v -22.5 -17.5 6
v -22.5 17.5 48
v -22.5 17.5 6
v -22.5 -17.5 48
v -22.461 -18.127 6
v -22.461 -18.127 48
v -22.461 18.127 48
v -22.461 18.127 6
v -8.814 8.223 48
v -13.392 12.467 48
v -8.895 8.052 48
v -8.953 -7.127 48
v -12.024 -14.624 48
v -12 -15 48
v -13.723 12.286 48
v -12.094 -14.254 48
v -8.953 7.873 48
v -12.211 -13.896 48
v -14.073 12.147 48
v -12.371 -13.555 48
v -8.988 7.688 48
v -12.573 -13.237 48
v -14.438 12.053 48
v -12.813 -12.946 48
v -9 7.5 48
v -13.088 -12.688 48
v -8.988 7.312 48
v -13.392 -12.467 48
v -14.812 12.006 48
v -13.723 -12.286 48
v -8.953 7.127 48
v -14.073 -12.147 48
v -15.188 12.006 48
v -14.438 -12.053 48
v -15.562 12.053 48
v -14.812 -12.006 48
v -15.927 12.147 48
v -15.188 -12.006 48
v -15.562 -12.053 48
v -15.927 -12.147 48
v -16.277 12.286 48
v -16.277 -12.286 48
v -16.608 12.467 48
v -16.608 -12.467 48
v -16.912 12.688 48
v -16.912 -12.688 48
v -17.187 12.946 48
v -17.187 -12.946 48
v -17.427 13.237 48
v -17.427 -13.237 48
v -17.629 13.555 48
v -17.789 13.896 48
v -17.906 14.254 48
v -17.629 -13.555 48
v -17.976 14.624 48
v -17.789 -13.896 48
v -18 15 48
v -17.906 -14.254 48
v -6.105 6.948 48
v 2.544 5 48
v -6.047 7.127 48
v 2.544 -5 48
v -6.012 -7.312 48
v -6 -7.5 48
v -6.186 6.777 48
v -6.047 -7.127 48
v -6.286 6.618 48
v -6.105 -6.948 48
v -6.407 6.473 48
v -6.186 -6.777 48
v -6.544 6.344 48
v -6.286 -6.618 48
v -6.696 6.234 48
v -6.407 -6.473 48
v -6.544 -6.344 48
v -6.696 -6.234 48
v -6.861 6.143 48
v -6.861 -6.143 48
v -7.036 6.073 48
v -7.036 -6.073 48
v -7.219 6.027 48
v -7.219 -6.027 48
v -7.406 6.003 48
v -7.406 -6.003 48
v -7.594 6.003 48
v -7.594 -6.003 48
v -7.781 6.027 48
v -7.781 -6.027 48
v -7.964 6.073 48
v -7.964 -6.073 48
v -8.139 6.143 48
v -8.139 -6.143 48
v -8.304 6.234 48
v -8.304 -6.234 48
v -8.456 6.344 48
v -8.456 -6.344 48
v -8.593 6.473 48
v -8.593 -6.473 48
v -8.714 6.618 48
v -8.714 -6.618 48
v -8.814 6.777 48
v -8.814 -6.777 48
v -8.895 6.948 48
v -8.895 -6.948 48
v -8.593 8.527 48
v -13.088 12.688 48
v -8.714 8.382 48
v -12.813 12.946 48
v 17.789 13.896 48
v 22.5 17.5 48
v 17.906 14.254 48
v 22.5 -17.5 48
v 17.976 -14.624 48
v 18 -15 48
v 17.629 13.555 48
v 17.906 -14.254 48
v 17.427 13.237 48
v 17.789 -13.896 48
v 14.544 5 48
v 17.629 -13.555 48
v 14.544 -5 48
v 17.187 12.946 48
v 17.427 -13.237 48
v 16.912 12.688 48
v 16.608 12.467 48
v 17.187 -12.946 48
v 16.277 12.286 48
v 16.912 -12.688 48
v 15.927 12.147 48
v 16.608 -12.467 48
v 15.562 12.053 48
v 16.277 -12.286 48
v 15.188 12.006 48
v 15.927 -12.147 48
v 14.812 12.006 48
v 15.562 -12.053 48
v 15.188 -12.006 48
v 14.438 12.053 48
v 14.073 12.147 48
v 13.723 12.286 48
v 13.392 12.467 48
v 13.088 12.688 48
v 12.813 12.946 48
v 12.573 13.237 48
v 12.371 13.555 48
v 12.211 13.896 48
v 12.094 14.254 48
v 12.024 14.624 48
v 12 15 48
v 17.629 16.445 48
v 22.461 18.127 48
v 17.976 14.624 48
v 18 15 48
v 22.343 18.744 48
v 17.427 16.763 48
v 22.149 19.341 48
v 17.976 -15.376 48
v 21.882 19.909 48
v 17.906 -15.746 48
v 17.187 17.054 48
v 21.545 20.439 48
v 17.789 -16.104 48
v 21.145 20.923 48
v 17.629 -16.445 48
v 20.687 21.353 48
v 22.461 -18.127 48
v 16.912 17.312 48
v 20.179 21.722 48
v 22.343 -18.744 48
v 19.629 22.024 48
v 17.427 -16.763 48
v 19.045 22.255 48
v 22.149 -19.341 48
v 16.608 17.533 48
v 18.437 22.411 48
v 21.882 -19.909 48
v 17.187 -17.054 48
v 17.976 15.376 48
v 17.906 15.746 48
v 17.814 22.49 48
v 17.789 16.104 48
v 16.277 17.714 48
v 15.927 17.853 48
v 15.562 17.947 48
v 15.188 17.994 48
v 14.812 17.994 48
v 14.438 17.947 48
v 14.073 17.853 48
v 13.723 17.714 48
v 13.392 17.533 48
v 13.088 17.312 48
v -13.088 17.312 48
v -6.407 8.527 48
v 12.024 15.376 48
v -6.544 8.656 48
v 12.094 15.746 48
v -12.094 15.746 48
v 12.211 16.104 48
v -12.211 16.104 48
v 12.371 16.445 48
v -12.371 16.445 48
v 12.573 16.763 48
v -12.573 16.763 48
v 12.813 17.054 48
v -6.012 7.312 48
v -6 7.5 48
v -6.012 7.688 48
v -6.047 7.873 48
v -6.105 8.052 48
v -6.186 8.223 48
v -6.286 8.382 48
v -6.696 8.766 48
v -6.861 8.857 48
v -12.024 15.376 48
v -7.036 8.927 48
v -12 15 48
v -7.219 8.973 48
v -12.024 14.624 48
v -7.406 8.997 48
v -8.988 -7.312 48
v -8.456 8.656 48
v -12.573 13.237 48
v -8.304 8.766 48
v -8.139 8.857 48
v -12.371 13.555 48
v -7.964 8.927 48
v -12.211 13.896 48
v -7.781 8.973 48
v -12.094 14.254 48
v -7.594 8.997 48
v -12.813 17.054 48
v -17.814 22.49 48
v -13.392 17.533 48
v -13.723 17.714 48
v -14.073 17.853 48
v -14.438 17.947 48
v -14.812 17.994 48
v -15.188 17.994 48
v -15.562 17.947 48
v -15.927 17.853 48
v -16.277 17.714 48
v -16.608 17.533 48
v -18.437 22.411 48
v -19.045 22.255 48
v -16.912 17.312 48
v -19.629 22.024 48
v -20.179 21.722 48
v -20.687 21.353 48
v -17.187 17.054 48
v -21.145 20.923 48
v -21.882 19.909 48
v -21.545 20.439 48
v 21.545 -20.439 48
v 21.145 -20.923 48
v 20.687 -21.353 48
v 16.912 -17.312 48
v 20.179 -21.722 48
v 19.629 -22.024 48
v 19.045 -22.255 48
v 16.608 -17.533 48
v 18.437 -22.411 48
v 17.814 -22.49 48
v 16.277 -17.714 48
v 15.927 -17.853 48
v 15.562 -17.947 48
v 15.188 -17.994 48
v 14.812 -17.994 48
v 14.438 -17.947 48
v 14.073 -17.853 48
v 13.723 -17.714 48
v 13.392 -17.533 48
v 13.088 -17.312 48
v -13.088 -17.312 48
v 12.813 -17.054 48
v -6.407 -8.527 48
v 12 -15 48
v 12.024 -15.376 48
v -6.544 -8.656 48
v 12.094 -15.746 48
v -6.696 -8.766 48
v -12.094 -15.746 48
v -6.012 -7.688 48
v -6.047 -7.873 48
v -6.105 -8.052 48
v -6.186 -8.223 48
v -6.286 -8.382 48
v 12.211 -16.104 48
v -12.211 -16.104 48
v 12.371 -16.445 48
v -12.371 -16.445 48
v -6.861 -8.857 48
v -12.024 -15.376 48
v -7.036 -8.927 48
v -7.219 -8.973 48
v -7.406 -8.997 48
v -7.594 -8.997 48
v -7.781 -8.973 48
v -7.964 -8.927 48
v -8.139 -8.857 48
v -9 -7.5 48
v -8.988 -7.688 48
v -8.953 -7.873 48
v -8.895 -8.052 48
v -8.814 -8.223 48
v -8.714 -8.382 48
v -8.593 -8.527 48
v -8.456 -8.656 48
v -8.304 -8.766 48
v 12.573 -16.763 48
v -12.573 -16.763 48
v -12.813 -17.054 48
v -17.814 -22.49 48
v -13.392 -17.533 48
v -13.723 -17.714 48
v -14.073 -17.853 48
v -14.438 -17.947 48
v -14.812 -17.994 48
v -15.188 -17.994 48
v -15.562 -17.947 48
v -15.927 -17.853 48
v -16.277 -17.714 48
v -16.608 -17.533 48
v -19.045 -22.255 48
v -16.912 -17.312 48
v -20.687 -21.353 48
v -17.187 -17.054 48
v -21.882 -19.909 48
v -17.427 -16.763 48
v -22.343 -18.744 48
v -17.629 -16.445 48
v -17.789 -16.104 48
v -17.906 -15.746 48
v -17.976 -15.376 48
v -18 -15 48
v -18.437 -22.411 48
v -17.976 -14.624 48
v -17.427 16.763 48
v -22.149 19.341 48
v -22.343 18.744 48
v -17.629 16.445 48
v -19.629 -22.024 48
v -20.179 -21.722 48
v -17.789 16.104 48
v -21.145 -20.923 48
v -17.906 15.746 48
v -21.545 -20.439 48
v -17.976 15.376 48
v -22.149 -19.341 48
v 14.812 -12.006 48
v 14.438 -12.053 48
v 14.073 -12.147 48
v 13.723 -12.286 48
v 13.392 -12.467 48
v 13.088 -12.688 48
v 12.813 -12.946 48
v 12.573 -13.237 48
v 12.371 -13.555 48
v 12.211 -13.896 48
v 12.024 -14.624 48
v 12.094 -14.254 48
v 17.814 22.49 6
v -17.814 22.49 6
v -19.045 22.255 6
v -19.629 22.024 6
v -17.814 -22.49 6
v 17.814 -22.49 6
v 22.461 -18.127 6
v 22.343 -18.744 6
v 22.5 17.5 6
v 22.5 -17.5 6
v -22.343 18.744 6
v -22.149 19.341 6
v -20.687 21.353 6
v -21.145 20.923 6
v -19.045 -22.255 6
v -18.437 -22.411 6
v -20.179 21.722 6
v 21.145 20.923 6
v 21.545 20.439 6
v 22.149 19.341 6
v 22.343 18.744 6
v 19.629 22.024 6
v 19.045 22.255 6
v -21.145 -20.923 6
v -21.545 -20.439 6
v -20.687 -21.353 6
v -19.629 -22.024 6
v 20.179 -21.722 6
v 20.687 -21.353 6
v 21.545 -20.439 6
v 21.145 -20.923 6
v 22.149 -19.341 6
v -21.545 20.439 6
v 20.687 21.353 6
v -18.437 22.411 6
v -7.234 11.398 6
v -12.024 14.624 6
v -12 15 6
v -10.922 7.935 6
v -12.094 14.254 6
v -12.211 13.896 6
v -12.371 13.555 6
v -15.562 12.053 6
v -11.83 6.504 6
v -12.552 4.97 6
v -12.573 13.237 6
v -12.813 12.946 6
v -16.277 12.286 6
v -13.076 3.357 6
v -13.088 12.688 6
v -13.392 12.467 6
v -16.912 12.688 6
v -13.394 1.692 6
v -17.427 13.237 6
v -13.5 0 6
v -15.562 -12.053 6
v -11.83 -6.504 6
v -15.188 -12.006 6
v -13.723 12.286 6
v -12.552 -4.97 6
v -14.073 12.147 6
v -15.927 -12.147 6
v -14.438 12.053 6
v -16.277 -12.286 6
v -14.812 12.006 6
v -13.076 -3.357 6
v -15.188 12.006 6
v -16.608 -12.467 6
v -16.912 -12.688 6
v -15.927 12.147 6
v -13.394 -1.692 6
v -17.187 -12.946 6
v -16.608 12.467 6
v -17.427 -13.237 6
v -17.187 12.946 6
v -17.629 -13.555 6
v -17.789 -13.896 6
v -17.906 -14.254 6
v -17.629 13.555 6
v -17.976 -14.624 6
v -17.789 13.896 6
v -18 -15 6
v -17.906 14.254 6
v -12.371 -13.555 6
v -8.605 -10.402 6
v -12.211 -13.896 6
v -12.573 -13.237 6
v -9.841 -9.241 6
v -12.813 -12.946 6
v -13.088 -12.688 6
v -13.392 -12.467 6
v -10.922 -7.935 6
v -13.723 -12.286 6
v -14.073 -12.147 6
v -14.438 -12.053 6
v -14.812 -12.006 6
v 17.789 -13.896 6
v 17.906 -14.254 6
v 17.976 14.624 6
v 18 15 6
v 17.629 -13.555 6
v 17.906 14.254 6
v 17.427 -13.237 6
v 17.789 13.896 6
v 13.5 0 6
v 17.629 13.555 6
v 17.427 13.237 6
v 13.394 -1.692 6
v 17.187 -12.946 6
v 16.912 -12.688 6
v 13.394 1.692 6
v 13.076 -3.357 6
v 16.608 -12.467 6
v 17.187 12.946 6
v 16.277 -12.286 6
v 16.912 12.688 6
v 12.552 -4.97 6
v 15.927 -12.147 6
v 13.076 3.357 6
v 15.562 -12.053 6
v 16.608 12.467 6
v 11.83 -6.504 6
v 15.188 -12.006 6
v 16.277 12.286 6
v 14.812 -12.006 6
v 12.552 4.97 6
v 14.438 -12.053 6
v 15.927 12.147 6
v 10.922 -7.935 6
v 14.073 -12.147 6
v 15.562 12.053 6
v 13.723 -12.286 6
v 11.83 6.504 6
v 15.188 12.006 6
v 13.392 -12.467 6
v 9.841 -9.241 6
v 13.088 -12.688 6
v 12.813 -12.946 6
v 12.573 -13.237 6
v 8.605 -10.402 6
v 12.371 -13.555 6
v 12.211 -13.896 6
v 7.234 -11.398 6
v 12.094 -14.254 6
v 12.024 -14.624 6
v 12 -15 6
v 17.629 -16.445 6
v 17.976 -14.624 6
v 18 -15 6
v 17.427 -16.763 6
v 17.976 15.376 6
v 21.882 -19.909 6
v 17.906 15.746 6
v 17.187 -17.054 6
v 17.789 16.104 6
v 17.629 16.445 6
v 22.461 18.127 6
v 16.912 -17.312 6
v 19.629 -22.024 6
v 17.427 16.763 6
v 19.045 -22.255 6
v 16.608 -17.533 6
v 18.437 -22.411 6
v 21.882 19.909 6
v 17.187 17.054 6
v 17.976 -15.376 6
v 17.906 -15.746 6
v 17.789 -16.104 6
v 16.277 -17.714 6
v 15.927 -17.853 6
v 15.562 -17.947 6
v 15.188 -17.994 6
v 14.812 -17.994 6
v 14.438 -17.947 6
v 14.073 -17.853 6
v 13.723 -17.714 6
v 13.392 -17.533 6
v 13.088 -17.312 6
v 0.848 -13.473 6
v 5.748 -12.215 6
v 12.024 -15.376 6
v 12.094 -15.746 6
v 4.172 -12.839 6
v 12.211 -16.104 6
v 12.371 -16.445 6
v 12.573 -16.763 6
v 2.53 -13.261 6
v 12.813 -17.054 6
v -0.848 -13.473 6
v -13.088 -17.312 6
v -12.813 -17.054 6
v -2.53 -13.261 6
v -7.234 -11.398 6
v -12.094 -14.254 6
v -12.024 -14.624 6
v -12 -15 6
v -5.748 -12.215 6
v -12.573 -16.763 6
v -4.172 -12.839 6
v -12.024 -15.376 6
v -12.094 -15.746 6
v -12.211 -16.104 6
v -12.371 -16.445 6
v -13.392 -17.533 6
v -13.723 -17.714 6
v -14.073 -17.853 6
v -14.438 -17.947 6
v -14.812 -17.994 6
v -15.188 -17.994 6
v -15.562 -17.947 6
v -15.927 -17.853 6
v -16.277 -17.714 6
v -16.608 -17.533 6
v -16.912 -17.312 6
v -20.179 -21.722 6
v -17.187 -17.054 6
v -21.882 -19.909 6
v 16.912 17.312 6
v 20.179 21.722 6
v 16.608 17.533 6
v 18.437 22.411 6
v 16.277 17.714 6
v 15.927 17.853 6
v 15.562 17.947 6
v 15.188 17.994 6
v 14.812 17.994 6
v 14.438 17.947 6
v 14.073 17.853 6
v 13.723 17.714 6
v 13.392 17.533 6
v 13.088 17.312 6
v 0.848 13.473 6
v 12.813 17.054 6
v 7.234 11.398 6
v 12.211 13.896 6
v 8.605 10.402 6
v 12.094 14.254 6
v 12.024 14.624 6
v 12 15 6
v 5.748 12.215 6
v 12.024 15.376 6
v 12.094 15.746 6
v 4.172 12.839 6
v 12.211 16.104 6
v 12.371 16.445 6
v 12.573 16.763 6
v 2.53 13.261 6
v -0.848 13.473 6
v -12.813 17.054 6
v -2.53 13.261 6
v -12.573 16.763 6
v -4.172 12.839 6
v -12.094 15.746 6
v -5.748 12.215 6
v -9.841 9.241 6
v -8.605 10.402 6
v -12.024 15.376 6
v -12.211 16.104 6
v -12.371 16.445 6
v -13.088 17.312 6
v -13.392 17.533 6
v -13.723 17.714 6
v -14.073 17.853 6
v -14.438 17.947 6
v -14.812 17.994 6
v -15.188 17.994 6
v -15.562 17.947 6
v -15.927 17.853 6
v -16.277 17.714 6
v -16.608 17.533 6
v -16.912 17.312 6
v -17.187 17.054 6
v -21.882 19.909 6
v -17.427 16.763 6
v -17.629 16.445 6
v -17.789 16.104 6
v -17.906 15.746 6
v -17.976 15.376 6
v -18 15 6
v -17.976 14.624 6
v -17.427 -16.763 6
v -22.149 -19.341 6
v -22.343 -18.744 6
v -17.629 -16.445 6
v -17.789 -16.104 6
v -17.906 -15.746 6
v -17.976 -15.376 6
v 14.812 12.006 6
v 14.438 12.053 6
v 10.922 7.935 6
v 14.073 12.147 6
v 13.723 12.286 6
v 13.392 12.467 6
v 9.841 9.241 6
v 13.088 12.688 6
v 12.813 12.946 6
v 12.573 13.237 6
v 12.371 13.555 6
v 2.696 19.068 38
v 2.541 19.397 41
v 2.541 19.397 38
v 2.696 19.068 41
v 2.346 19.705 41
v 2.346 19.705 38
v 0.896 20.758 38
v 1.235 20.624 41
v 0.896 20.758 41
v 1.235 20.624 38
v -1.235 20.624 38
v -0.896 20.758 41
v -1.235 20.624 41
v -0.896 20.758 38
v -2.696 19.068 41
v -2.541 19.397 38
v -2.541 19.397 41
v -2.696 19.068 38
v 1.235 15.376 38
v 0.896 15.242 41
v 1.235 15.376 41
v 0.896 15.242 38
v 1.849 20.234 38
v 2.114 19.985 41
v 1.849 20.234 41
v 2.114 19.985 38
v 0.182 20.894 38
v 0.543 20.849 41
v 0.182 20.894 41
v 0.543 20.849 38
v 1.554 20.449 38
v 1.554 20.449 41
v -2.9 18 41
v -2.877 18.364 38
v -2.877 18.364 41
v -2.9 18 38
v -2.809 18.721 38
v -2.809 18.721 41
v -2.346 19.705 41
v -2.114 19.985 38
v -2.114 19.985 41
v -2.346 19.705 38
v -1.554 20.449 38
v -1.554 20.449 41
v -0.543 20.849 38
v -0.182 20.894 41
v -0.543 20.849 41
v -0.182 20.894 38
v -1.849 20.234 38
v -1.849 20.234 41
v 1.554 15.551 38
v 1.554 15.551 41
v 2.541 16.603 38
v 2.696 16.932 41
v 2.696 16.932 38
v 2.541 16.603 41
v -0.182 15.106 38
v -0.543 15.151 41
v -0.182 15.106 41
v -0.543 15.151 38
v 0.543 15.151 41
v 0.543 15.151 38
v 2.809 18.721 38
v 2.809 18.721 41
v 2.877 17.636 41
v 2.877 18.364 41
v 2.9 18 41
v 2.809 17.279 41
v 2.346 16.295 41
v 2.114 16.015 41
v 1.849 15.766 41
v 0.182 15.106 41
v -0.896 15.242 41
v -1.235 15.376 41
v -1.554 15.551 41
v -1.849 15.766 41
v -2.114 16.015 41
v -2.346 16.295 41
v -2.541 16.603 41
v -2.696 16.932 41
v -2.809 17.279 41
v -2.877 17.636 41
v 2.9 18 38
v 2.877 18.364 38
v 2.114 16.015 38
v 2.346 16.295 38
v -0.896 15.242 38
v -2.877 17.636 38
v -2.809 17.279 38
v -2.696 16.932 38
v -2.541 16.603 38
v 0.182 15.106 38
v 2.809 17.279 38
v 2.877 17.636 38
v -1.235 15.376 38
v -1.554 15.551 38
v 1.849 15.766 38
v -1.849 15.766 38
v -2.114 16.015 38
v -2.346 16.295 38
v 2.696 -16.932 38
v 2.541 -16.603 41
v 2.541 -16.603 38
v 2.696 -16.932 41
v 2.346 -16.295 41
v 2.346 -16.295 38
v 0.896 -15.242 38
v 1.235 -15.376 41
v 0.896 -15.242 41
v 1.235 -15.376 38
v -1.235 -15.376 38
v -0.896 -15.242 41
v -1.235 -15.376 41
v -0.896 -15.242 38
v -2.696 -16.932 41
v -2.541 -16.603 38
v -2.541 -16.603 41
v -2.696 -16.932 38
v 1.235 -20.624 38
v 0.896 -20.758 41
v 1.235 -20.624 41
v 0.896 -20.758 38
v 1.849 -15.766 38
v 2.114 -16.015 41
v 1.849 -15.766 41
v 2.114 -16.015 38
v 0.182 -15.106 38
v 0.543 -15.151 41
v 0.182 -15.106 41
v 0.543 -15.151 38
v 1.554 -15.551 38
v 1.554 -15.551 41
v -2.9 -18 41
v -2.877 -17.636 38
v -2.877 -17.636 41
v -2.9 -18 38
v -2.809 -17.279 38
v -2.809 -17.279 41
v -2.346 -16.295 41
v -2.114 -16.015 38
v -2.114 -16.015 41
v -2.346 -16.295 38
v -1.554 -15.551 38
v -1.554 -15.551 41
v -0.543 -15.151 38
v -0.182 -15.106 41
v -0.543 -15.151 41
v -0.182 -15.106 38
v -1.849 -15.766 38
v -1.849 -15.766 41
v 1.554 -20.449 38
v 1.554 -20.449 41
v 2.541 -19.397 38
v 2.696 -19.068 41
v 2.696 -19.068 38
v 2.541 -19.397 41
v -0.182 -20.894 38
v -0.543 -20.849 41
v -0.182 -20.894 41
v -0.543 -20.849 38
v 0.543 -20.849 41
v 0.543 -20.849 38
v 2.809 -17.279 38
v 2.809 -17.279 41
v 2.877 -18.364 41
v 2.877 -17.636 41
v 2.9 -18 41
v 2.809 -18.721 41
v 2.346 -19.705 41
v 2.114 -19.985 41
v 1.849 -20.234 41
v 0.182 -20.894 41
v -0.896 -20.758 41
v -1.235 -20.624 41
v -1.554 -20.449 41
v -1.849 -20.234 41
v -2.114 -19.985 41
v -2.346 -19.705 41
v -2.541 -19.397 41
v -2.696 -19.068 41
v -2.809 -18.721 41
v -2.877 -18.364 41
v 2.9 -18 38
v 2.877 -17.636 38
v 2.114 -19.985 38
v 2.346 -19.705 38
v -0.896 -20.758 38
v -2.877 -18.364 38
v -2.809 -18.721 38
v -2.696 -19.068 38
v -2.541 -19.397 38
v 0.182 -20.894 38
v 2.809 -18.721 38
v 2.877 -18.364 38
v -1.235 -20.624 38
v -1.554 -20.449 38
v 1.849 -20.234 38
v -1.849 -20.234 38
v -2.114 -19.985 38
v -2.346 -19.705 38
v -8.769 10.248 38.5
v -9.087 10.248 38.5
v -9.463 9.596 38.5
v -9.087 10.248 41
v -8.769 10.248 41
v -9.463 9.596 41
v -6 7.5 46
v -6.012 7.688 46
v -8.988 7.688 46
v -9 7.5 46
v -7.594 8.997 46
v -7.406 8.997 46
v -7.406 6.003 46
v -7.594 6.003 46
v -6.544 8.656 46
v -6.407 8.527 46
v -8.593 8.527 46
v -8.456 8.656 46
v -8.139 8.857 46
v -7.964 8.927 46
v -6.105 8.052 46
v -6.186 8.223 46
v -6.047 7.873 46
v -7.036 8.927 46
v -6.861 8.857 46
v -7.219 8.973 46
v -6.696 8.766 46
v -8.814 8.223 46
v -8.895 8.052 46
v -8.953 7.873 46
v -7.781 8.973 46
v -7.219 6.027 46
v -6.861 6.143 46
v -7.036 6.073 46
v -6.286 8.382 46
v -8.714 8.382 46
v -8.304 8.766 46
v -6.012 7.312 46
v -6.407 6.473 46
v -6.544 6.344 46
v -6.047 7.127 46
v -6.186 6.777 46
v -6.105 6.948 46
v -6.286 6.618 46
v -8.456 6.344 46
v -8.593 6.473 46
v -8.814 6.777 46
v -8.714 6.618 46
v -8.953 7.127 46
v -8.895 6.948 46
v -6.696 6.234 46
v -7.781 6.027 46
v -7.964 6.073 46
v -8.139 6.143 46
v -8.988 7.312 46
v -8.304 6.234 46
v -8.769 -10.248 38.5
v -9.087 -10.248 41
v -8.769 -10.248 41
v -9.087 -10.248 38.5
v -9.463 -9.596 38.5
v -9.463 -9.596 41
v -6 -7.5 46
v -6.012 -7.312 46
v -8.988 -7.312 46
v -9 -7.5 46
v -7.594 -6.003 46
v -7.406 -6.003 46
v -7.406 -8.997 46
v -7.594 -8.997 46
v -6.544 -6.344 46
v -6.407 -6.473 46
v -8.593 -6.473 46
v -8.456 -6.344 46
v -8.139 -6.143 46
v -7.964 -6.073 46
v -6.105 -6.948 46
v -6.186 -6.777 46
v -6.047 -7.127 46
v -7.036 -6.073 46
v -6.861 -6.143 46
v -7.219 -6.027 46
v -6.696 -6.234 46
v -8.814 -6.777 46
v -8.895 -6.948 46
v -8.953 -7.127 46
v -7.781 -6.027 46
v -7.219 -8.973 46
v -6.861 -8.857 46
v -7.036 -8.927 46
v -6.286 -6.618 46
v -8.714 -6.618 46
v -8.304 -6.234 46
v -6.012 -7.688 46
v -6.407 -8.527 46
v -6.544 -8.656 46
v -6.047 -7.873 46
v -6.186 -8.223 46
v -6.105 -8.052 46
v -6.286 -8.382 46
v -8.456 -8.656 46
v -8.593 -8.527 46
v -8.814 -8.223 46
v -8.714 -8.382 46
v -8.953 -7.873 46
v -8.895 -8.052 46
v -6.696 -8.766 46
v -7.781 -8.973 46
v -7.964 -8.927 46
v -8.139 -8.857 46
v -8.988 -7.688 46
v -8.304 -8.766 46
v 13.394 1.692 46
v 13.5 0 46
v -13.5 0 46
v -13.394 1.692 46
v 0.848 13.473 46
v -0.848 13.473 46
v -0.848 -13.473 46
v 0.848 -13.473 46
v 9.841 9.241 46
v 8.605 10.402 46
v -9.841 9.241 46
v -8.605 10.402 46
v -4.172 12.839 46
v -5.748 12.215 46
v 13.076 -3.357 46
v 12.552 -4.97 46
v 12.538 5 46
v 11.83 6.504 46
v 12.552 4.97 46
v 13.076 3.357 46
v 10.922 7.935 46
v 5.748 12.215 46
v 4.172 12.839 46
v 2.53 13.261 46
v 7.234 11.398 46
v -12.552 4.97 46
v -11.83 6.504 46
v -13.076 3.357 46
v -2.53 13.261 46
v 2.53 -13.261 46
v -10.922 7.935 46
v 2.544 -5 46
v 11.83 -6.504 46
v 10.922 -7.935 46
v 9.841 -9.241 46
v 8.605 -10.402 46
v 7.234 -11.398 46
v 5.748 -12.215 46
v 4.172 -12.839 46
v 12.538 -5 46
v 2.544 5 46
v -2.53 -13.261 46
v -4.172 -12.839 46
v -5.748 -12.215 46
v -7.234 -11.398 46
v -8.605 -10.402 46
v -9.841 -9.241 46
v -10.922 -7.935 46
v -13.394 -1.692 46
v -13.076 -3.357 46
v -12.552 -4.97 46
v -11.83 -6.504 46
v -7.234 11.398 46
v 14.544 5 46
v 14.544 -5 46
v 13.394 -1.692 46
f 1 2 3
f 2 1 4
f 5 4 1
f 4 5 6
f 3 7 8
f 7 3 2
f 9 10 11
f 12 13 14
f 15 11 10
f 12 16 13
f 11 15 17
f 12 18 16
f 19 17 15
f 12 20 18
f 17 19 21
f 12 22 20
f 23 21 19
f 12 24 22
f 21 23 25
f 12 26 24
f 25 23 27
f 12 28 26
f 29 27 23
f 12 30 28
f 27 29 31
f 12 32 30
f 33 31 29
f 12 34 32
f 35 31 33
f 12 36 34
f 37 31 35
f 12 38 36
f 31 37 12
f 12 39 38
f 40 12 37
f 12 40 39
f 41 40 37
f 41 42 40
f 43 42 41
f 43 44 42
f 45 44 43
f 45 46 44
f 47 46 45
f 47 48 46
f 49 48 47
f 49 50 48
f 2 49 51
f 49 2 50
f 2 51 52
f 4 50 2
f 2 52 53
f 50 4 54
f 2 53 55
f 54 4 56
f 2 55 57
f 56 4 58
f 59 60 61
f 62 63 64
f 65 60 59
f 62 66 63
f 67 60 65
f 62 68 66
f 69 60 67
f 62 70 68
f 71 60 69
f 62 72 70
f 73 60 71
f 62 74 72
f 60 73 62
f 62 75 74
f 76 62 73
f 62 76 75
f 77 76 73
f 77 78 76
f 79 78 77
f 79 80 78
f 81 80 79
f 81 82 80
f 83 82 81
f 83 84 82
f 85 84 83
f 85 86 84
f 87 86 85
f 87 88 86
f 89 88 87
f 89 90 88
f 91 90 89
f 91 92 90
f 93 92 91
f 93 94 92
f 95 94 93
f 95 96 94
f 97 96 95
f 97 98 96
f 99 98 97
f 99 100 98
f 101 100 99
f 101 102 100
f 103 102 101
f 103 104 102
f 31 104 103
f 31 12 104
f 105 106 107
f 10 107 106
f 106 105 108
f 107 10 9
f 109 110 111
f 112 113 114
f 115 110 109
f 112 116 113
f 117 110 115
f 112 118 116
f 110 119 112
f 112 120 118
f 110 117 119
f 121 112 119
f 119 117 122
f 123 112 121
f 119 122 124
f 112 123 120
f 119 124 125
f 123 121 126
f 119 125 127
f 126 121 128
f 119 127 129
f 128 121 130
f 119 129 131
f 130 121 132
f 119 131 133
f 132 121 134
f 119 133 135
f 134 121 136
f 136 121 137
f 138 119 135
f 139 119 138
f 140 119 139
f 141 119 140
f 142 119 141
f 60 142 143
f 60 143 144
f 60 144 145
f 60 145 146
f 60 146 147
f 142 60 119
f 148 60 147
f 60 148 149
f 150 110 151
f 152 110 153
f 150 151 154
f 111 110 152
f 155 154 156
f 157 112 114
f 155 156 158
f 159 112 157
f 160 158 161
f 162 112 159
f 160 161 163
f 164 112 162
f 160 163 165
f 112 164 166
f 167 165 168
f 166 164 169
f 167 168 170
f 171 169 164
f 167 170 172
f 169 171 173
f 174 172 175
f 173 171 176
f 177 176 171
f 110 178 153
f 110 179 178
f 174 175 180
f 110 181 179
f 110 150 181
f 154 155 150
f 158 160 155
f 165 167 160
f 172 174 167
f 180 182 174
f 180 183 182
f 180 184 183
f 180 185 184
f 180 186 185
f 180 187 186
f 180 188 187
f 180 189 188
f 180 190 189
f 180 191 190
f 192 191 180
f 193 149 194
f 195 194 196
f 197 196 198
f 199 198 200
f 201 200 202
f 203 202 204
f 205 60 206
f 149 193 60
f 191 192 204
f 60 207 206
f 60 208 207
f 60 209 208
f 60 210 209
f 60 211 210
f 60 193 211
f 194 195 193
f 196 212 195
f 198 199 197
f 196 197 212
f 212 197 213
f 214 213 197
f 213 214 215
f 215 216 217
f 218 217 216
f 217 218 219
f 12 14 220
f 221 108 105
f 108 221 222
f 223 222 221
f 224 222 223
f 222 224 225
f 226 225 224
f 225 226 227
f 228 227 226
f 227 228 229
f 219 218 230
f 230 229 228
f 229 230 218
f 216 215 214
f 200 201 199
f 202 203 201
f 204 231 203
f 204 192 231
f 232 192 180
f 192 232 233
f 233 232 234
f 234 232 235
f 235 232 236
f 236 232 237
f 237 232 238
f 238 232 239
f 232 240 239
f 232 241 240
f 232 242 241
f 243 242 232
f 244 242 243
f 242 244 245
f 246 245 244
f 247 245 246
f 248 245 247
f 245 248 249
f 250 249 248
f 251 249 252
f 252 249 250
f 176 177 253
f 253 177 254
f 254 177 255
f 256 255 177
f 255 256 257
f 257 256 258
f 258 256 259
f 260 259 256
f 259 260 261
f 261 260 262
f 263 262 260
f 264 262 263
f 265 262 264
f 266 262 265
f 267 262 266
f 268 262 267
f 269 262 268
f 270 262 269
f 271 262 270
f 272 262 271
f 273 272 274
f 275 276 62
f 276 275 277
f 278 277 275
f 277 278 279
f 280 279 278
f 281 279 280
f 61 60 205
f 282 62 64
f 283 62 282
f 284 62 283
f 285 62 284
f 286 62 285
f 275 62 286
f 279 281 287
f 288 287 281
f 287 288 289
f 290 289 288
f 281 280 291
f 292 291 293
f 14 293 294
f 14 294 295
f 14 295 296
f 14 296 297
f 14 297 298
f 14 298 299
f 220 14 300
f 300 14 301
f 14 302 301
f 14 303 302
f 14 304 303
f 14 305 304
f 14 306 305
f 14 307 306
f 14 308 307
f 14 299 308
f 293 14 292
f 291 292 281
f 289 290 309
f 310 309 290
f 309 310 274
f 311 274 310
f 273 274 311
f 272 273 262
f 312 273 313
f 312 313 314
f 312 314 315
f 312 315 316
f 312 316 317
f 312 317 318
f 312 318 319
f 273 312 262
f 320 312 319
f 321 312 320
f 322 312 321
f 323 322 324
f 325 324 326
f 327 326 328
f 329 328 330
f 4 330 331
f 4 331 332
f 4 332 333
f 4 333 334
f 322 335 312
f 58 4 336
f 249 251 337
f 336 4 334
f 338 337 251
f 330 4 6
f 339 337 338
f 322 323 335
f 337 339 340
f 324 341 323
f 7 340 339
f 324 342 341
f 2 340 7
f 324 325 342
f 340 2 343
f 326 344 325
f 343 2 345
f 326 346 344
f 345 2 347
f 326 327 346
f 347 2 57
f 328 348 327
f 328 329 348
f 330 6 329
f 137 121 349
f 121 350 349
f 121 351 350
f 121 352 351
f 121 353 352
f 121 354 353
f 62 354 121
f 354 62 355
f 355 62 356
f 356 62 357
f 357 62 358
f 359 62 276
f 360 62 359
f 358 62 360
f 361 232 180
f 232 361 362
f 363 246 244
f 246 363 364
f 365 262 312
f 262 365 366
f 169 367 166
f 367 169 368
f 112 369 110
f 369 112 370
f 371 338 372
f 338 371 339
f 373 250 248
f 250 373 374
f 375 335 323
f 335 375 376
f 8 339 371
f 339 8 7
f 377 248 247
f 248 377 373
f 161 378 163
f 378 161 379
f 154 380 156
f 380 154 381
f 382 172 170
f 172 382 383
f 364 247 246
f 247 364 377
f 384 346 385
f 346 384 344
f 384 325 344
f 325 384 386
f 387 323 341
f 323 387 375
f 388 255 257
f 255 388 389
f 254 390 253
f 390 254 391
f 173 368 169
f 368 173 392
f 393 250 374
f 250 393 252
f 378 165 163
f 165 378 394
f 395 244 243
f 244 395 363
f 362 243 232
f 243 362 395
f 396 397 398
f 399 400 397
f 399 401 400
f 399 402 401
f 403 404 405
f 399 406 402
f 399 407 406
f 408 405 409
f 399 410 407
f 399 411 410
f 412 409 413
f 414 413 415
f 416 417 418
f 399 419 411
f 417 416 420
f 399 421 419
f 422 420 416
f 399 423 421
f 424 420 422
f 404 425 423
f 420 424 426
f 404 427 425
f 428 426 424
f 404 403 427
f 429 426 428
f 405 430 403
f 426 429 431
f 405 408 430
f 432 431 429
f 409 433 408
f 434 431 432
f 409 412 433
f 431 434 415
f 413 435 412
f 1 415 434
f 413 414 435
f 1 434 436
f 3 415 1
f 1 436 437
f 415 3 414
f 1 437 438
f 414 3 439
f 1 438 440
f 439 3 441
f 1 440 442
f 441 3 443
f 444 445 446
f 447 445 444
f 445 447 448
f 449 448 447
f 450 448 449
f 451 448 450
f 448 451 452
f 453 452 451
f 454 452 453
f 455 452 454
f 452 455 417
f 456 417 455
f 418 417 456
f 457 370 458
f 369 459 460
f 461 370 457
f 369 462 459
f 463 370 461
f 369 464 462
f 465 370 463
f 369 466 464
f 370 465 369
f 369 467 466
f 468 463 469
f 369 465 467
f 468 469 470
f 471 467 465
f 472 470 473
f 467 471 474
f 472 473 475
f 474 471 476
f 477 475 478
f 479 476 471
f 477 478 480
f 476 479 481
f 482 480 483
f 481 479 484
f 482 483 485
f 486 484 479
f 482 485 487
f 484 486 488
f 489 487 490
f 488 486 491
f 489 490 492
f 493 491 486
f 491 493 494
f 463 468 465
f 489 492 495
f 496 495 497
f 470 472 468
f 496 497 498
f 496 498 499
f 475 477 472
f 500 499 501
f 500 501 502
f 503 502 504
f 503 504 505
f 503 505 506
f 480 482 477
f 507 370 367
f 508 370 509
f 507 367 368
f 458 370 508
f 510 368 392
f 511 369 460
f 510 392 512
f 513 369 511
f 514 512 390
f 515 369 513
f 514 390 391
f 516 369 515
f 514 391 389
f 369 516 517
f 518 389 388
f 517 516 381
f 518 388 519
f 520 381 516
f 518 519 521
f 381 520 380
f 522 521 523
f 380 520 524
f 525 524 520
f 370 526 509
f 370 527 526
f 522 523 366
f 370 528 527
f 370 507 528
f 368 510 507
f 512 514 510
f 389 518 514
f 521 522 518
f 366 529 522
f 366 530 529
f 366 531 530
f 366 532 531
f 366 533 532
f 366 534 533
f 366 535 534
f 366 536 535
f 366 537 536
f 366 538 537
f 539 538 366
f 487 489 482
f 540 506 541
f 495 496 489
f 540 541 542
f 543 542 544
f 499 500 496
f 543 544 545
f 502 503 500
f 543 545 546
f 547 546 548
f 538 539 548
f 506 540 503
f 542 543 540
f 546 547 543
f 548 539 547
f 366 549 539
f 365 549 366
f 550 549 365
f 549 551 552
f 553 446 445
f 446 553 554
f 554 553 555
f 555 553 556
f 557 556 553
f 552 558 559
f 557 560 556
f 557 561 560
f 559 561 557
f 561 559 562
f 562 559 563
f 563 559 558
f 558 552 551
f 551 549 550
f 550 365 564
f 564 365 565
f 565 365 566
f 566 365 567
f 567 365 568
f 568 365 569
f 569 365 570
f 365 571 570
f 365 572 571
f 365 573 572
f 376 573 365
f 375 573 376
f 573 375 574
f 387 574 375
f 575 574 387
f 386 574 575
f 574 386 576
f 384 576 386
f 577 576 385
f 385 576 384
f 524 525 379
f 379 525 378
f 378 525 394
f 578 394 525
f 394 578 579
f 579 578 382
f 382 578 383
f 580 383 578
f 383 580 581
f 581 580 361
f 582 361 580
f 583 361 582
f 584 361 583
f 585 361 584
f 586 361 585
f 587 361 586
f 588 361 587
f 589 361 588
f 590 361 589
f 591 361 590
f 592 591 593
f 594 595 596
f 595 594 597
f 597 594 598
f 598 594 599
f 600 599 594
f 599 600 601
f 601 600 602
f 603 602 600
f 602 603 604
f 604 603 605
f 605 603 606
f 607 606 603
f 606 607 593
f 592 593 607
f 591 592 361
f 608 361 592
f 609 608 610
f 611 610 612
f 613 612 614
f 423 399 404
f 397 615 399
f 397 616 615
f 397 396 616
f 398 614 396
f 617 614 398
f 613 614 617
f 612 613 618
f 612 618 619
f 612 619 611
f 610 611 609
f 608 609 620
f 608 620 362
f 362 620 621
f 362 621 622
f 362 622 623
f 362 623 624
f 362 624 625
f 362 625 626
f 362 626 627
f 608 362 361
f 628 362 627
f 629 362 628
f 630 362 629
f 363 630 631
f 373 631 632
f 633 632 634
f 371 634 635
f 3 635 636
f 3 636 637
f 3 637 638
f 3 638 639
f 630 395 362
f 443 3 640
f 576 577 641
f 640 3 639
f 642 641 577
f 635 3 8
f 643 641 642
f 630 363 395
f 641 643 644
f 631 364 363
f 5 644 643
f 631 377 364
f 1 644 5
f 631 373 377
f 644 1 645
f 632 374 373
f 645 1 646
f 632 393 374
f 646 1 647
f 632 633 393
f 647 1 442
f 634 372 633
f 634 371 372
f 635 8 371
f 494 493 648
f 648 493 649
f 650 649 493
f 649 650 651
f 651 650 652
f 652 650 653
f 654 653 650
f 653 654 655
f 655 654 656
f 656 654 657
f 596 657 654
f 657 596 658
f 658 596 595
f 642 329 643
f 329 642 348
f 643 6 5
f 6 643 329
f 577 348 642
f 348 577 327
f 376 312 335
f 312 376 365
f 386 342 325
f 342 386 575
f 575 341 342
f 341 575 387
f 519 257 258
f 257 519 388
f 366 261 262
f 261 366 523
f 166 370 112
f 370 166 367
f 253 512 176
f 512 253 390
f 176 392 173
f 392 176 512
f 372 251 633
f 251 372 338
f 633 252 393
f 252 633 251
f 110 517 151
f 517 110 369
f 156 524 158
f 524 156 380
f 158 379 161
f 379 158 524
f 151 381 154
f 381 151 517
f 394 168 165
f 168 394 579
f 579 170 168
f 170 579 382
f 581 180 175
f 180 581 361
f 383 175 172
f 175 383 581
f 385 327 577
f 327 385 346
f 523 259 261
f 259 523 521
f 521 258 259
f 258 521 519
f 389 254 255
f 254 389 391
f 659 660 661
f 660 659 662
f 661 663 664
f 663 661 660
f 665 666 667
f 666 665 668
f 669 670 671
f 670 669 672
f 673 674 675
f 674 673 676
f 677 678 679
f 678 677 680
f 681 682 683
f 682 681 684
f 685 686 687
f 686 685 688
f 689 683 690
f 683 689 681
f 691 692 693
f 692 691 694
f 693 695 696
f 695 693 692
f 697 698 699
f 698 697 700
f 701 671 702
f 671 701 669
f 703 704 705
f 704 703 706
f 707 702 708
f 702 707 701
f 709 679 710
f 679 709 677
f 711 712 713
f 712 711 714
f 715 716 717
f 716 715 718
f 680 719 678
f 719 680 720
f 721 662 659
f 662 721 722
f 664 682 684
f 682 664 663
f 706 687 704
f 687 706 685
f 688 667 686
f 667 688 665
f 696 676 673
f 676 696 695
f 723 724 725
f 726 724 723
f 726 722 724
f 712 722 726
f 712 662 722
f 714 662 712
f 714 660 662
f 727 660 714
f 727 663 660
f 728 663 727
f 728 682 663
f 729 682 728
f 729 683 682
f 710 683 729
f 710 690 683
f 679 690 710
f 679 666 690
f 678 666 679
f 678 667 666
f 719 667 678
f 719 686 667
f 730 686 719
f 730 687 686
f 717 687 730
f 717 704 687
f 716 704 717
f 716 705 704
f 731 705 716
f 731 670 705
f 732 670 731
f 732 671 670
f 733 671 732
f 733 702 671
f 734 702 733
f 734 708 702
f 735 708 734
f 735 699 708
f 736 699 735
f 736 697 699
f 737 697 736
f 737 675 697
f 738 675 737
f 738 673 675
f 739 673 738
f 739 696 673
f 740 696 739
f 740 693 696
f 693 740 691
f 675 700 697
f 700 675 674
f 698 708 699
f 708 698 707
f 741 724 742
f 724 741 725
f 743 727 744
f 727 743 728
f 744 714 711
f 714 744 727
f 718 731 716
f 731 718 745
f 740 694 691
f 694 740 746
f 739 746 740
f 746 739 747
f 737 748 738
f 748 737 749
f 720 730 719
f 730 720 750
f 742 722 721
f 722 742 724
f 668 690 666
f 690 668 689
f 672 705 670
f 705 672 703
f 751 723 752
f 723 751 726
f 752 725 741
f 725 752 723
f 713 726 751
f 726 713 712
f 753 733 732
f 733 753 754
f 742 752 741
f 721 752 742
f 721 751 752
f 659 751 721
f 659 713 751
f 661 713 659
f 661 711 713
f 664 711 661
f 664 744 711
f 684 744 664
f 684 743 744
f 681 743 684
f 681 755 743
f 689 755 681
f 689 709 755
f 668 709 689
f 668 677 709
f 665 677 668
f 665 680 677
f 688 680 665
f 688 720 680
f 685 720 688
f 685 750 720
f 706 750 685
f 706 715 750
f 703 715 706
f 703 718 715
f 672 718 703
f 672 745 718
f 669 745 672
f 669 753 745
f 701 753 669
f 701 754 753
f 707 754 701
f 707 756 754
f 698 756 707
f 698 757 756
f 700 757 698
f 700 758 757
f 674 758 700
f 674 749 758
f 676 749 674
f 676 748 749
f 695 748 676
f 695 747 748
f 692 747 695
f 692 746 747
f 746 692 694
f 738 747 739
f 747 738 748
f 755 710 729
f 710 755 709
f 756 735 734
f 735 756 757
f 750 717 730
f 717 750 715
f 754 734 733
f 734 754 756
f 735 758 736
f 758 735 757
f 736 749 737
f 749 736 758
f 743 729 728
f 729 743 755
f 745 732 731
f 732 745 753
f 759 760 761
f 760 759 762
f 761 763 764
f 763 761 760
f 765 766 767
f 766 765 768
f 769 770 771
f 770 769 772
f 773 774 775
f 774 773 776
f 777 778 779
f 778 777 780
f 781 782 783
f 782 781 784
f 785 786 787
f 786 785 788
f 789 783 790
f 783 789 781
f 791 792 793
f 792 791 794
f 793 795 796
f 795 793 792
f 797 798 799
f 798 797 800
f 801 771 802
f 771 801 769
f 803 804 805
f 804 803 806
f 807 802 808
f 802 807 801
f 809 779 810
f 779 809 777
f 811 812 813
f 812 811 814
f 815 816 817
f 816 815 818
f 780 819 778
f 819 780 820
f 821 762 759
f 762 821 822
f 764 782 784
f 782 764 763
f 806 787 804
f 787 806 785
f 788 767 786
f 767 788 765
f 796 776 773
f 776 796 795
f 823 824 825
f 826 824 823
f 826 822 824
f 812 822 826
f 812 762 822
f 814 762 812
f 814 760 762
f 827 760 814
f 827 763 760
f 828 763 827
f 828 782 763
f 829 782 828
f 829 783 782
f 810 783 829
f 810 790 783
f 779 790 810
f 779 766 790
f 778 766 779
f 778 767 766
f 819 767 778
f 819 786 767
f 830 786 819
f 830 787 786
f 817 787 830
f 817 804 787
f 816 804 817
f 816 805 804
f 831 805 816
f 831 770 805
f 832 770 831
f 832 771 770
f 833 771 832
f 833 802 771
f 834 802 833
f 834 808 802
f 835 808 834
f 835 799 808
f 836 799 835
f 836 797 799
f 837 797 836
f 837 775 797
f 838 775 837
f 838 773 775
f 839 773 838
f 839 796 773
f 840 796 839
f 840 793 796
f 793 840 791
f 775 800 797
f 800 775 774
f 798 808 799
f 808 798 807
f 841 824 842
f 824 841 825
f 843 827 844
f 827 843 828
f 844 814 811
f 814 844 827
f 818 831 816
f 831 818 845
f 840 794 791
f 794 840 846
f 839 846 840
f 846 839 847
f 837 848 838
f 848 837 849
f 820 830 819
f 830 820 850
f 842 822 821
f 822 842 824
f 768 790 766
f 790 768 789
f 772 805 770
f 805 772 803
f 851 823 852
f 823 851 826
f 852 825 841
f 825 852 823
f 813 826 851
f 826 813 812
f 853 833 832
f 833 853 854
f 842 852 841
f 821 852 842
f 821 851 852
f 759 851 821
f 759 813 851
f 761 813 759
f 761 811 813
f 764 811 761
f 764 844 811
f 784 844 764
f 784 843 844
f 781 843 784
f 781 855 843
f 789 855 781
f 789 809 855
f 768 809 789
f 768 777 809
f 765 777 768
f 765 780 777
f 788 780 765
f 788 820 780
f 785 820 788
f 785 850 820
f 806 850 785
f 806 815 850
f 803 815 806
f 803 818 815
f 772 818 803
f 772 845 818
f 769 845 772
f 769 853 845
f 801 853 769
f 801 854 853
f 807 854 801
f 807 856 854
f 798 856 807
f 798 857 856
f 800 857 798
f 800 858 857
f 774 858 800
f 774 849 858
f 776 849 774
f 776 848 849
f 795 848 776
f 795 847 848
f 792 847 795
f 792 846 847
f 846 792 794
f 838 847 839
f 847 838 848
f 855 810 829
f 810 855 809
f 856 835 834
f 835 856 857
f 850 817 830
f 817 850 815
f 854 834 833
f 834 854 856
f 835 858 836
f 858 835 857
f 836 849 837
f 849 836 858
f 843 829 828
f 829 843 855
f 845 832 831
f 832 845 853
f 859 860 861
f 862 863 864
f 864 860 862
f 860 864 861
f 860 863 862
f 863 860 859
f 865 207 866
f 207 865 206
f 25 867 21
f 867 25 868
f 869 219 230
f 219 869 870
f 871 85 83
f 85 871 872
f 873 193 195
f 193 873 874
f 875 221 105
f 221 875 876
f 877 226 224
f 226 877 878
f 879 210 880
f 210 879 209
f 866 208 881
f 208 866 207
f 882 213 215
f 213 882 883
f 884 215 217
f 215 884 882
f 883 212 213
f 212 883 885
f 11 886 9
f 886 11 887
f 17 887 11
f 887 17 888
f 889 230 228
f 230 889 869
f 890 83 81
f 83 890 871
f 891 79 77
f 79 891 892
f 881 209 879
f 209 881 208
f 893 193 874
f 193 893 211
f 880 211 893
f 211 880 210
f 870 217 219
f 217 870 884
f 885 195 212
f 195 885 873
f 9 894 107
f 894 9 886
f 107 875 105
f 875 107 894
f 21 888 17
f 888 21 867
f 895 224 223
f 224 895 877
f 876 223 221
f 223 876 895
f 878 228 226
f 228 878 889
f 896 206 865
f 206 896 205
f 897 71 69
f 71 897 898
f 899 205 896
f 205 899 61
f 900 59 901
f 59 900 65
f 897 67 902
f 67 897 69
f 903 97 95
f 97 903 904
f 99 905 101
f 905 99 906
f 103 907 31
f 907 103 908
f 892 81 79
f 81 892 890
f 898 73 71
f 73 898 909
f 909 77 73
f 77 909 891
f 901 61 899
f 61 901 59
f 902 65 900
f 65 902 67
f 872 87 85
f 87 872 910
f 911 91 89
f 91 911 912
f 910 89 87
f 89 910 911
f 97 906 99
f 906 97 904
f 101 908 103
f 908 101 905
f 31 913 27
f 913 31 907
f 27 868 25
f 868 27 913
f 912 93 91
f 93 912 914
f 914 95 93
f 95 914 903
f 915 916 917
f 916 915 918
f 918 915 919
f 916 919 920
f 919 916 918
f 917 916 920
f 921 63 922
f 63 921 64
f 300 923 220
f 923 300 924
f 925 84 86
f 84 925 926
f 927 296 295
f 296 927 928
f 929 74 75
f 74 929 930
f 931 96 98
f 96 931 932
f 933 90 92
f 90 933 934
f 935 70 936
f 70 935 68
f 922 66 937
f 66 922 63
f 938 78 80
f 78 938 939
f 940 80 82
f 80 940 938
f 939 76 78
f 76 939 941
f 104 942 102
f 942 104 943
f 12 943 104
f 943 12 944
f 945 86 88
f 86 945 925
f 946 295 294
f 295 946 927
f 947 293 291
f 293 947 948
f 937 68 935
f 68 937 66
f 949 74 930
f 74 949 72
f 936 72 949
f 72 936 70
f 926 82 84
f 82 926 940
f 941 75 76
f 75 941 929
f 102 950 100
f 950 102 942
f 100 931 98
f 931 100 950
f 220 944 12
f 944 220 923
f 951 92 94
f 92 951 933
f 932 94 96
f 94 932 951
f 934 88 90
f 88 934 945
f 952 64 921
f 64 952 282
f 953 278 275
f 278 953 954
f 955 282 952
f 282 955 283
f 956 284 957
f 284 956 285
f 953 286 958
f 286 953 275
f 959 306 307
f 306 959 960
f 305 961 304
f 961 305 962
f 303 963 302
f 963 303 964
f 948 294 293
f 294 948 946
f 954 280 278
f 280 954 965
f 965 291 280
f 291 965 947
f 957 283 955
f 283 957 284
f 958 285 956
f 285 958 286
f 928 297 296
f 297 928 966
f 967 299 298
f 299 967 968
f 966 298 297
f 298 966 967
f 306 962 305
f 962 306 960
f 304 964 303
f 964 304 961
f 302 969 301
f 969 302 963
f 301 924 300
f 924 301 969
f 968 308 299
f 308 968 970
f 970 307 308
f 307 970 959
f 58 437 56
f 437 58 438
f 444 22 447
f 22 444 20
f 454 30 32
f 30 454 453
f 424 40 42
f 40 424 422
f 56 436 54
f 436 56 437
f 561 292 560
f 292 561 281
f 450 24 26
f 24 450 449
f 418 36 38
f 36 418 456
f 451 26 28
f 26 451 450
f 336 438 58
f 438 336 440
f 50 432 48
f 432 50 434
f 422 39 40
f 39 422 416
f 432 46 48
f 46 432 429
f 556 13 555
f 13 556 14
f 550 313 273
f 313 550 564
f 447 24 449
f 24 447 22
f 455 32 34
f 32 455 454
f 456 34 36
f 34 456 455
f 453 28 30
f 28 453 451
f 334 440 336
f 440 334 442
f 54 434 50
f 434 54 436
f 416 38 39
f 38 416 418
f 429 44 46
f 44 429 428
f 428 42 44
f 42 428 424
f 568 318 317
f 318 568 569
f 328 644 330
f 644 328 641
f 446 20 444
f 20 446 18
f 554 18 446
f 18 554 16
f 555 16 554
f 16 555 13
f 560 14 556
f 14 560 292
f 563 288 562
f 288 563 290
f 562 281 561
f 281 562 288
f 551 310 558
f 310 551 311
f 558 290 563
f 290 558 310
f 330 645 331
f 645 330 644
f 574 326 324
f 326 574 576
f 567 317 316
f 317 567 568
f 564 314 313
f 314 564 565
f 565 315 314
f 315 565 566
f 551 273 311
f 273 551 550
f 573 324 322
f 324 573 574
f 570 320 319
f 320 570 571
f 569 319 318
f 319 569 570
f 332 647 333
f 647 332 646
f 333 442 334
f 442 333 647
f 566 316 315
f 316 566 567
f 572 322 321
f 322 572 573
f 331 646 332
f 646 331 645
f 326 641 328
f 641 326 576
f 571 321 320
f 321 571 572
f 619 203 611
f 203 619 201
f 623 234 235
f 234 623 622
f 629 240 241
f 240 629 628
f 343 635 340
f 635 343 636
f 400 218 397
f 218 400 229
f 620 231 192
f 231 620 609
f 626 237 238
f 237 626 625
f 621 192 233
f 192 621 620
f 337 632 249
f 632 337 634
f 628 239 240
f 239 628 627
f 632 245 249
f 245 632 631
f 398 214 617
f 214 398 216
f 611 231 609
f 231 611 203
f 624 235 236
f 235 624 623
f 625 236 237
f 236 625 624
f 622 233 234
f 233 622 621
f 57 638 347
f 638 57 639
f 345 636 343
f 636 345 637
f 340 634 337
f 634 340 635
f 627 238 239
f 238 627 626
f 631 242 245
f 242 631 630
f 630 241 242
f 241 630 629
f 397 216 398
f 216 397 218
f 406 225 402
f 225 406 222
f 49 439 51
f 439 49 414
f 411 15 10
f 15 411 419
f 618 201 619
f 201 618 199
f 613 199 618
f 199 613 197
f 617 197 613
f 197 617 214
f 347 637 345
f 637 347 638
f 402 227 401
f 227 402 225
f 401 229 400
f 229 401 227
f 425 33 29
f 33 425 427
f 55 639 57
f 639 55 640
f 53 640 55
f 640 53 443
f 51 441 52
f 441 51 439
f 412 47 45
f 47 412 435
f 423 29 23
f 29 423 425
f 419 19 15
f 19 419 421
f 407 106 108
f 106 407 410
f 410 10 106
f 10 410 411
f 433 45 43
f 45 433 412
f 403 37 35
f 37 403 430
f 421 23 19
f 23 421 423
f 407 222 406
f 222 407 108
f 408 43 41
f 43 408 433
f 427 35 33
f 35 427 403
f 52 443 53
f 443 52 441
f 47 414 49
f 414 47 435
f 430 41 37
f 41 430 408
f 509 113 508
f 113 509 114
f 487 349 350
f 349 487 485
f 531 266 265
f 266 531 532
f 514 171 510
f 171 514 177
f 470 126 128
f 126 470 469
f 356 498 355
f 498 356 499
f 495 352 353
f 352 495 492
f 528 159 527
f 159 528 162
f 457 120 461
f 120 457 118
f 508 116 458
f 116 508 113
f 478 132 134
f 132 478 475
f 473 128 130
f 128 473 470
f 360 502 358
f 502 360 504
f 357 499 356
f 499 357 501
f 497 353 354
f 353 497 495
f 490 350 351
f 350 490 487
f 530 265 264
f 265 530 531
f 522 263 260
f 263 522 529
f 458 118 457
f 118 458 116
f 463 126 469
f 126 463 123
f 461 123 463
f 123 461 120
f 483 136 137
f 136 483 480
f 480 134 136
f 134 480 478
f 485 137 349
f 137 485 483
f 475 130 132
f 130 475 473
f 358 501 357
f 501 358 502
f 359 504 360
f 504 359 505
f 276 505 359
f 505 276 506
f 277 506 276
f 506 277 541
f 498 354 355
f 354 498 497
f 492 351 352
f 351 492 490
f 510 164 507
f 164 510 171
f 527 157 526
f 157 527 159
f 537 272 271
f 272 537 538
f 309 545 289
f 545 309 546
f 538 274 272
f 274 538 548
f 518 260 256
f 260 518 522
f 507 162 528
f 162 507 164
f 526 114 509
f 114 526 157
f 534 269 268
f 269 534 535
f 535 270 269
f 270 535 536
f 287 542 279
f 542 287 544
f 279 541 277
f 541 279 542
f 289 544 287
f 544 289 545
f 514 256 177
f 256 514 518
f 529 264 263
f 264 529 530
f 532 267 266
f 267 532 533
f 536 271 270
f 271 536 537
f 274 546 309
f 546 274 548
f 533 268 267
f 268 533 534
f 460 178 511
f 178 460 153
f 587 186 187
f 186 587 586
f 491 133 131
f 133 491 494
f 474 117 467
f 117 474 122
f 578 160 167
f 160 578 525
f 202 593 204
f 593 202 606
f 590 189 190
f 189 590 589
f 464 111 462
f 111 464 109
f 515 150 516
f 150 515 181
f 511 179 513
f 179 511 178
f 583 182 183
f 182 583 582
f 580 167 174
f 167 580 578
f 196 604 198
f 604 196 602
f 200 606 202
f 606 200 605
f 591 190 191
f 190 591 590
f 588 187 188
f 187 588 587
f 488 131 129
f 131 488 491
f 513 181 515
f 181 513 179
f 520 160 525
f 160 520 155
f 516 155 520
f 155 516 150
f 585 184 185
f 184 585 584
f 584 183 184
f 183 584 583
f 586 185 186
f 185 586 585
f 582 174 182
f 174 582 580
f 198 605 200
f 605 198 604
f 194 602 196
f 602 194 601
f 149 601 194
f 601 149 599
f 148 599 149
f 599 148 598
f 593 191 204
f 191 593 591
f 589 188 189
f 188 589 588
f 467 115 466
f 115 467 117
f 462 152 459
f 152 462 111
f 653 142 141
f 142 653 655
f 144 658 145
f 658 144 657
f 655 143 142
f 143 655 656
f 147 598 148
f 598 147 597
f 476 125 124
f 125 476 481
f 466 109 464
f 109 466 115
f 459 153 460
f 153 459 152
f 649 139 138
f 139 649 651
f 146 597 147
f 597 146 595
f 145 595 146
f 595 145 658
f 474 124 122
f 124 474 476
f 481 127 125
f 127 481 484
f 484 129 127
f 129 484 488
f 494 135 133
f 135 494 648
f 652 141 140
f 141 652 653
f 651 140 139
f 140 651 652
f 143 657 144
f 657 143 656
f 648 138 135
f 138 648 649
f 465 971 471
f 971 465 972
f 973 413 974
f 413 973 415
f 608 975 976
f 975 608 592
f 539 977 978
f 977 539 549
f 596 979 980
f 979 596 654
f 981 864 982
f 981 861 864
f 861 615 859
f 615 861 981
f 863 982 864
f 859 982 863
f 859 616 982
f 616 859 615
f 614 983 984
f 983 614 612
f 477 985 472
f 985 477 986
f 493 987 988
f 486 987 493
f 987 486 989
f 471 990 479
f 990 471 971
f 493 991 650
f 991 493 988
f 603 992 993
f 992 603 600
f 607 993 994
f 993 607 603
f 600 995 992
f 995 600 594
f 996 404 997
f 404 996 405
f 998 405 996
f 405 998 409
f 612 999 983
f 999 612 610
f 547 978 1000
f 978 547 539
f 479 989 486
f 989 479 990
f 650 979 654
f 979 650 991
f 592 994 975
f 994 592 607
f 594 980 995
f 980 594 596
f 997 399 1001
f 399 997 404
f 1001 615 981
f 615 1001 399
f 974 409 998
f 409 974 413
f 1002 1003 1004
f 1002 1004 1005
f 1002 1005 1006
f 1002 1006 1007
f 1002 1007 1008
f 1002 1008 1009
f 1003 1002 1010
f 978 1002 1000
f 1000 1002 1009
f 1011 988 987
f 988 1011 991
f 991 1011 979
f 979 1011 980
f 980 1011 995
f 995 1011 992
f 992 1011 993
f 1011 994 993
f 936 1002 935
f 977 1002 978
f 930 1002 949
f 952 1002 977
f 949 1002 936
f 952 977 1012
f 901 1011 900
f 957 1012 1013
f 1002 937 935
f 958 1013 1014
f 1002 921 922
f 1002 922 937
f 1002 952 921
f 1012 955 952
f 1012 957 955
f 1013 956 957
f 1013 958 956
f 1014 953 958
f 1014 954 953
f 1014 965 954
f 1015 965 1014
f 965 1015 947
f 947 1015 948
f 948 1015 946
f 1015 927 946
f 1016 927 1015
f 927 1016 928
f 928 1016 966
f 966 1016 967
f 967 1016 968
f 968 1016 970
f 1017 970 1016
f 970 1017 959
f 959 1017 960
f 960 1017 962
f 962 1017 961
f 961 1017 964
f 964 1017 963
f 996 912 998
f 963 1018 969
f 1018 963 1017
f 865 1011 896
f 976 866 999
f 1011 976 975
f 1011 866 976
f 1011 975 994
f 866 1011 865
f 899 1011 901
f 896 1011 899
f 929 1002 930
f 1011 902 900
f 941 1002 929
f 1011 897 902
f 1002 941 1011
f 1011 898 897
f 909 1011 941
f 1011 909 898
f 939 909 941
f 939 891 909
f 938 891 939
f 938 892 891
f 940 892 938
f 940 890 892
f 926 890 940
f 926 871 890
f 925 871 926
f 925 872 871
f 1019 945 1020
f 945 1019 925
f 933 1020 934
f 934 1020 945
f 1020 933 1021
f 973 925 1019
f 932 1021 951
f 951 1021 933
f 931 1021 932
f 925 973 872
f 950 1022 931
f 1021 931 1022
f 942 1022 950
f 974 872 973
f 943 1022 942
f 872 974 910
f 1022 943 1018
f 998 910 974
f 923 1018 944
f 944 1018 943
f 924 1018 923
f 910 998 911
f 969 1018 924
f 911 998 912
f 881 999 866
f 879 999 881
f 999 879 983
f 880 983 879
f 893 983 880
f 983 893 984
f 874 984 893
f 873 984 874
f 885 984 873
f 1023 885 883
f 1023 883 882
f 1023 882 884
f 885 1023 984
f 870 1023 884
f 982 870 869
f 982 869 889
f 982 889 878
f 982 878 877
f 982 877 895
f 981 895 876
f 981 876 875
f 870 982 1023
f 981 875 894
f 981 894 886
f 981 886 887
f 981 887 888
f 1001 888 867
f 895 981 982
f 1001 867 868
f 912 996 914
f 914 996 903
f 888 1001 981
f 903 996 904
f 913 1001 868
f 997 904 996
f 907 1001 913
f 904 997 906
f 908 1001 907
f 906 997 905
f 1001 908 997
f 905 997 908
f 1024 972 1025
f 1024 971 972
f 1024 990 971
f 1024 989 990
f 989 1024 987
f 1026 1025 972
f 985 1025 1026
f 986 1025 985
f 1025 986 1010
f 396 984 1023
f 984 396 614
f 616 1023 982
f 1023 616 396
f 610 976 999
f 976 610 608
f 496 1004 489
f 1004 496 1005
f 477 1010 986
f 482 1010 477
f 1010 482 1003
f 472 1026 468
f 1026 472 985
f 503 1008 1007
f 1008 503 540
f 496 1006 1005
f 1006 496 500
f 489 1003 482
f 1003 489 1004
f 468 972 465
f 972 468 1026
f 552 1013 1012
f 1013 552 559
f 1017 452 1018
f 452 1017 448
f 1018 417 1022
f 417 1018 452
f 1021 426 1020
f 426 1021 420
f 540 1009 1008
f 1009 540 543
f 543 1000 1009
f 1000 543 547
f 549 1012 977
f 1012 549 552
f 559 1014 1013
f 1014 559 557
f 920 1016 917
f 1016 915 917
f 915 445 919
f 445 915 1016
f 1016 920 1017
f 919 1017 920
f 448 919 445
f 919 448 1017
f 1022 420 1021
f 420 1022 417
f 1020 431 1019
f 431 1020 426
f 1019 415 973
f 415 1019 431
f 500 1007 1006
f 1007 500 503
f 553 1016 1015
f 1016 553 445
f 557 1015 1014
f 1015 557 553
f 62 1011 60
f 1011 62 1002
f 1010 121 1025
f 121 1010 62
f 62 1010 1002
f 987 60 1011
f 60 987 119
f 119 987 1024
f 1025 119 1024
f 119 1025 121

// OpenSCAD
$fn = 50;


difference() {
	union() {
		translate(v = [0, 0, 6]) {
			hull() {
				translate(v = [-17.5000000000, 17.5000000000, 0]) {
					cylinder(h = 42, r = 5);
				}
				translate(v = [17.5000000000, 17.5000000000, 0]) {
					cylinder(h = 42, r = 5);
				}
				translate(v = [-17.5000000000, -17.5000000000, 0]) {
					cylinder(h = 42, r = 5);
				}
				translate(v = [17.5000000000, -17.5000000000, 0]) {
					cylinder(h = 42, r = 5);
				}
			}
		}
		translate(v = [0, 0, 6]) {
			hull() {
				translate(v = [-17.5000000000, 17.5000000000, 0]) {
					cylinder(h = 42, r = 5);
				}
				translate(v = [17.5000000000, 17.5000000000, 0]) {
					cylinder(h = 42, r = 5);
				}
				translate(v = [-17.5000000000, -17.5000000000, 0]) {
					cylinder(h = 42, r = 5);
				}
				translate(v = [17.5000000000, -17.5000000000, 0]) {
					cylinder(h = 42, r = 5);
				}
			}
		}
	}
	union() {
		translate(v = [0, 18, 38]) {
			rotate(a = [0, 0, 0]) {
				difference() {
					union() {
						cylinder(h = 3, r = 2.9000000000);
						translate(v = [0, 0, -300.0000000000]) {
							cylinder(h = 100, r = 1.5000000000);
						}
						translate(v = [0, 0, -300.0000000000]) {
							cylinder(h = 100, r = 1.8000000000);
						}
						translate(v = [0, 0, -300.0000000000]) {
							cylinder(h = 100, r = 1.5000000000);
						}
					}
					union();
				}
			}
		}
		translate(v = [0, -18, 38]) {
			rotate(a = [0, 0, 0]) {
				difference() {
					union() {
						cylinder(h = 3, r = 2.9000000000);
						translate(v = [0, 0, -300.0000000000]) {
							cylinder(h = 100, r = 1.5000000000);
						}
						translate(v = [0, 0, -300.0000000000]) {
							cylinder(h = 100, r = 1.8000000000);
						}
						translate(v = [0, 0, -300.0000000000]) {
							cylinder(h = 100, r = 1.5000000000);
						}
					}
					union();
				}
			}
		}
		translate(v = [-7.5000000000, 7.5000000000, 41]) {
			rotate(a = [0, 0, 0]) {
				difference() {
					union() {
						translate(v = [0, 0, -2.5000000000]) {
							linear_extrude(height = 2.5000000000) {
								polygon(points = [[3.1735000000, 0.0000000000], [1.5867500000, 2.7483316189], [-1.5867500000, 2.7483316189], [-3.1735000000, 0.0000000000], [-1.5867500000, -2.7483316189], [1.5867500000, -2.7483316189]]);
							}
						}
						translate(v = [0, 0, -50.0000000000]) {
							cylinder(h = 100, r = 1.5000000000);
						}
						translate(v = [0, 0, -50.0000000000]) {
							cylinder(h = 100, r = 1.5000000000);
						}
						translate(v = [0, 0, -50.0000000000]) {
							cylinder(h = 100, r = 1.5000000000);
						}
					}
					union();
				}
			}
		}
		translate(v = [-7.5000000000, -7.5000000000, 41]) {
			rotate(a = [0, 0, 0]) {
				difference() {
					union() {
						translate(v = [0, 0, -2.5000000000]) {
							linear_extrude(height = 2.5000000000) {
								polygon(points = [[3.1735000000, 0.0000000000], [1.5867500000, 2.7483316189], [-1.5867500000, 2.7483316189], [-3.1735000000, 0.0000000000], [-1.5867500000, -2.7483316189], [1.5867500000, -2.7483316189]]);
							}
						}
						translate(v = [0, 0, -50.0000000000]) {
							cylinder(h = 100, r = 1.5000000000);
						}
						translate(v = [0, 0, -50.0000000000]) {
							cylinder(h = 100, r = 1.5000000000);
						}
						translate(v = [0, 0, -50.0000000000]) {
							cylinder(h = 100, r = 1.5000000000);
						}
					}
					union();
				}
			}
		}
		translate(v = [-15.0000000000, -15.0000000000, -50.0000000000]) {
			cylinder(h = 100, r = 3.0000000000);
		}
		translate(v = [-15.0000000000, 15.0000000000, -50.0000000000]) {
			cylinder(h = 100, r = 3.0000000000);
		}
		translate(v = [15.0000000000, -15.0000000000, -50.0000000000]) {
			cylinder(h = 100, r = 3.0000000000);
		}
		translate(v = [15.0000000000, 15.0000000000, -50.0000000000]) {
			cylinder(h = 100, r = 3.0000000000);
		}
		translate(v = [0, 0, -1.0000000000]) {
			cylinder(h = 47, r = 13.5000000000);
		}
		#translate(v = [2.5440000000, -5.0000000000, 46]) {
			cube(size = [7, 10, 10]);
		}
		#translate(v = [7.5440000000, -5.0000000000, 46]) {
			cube(size = [7, 10, 10]);
		}
	}
}
